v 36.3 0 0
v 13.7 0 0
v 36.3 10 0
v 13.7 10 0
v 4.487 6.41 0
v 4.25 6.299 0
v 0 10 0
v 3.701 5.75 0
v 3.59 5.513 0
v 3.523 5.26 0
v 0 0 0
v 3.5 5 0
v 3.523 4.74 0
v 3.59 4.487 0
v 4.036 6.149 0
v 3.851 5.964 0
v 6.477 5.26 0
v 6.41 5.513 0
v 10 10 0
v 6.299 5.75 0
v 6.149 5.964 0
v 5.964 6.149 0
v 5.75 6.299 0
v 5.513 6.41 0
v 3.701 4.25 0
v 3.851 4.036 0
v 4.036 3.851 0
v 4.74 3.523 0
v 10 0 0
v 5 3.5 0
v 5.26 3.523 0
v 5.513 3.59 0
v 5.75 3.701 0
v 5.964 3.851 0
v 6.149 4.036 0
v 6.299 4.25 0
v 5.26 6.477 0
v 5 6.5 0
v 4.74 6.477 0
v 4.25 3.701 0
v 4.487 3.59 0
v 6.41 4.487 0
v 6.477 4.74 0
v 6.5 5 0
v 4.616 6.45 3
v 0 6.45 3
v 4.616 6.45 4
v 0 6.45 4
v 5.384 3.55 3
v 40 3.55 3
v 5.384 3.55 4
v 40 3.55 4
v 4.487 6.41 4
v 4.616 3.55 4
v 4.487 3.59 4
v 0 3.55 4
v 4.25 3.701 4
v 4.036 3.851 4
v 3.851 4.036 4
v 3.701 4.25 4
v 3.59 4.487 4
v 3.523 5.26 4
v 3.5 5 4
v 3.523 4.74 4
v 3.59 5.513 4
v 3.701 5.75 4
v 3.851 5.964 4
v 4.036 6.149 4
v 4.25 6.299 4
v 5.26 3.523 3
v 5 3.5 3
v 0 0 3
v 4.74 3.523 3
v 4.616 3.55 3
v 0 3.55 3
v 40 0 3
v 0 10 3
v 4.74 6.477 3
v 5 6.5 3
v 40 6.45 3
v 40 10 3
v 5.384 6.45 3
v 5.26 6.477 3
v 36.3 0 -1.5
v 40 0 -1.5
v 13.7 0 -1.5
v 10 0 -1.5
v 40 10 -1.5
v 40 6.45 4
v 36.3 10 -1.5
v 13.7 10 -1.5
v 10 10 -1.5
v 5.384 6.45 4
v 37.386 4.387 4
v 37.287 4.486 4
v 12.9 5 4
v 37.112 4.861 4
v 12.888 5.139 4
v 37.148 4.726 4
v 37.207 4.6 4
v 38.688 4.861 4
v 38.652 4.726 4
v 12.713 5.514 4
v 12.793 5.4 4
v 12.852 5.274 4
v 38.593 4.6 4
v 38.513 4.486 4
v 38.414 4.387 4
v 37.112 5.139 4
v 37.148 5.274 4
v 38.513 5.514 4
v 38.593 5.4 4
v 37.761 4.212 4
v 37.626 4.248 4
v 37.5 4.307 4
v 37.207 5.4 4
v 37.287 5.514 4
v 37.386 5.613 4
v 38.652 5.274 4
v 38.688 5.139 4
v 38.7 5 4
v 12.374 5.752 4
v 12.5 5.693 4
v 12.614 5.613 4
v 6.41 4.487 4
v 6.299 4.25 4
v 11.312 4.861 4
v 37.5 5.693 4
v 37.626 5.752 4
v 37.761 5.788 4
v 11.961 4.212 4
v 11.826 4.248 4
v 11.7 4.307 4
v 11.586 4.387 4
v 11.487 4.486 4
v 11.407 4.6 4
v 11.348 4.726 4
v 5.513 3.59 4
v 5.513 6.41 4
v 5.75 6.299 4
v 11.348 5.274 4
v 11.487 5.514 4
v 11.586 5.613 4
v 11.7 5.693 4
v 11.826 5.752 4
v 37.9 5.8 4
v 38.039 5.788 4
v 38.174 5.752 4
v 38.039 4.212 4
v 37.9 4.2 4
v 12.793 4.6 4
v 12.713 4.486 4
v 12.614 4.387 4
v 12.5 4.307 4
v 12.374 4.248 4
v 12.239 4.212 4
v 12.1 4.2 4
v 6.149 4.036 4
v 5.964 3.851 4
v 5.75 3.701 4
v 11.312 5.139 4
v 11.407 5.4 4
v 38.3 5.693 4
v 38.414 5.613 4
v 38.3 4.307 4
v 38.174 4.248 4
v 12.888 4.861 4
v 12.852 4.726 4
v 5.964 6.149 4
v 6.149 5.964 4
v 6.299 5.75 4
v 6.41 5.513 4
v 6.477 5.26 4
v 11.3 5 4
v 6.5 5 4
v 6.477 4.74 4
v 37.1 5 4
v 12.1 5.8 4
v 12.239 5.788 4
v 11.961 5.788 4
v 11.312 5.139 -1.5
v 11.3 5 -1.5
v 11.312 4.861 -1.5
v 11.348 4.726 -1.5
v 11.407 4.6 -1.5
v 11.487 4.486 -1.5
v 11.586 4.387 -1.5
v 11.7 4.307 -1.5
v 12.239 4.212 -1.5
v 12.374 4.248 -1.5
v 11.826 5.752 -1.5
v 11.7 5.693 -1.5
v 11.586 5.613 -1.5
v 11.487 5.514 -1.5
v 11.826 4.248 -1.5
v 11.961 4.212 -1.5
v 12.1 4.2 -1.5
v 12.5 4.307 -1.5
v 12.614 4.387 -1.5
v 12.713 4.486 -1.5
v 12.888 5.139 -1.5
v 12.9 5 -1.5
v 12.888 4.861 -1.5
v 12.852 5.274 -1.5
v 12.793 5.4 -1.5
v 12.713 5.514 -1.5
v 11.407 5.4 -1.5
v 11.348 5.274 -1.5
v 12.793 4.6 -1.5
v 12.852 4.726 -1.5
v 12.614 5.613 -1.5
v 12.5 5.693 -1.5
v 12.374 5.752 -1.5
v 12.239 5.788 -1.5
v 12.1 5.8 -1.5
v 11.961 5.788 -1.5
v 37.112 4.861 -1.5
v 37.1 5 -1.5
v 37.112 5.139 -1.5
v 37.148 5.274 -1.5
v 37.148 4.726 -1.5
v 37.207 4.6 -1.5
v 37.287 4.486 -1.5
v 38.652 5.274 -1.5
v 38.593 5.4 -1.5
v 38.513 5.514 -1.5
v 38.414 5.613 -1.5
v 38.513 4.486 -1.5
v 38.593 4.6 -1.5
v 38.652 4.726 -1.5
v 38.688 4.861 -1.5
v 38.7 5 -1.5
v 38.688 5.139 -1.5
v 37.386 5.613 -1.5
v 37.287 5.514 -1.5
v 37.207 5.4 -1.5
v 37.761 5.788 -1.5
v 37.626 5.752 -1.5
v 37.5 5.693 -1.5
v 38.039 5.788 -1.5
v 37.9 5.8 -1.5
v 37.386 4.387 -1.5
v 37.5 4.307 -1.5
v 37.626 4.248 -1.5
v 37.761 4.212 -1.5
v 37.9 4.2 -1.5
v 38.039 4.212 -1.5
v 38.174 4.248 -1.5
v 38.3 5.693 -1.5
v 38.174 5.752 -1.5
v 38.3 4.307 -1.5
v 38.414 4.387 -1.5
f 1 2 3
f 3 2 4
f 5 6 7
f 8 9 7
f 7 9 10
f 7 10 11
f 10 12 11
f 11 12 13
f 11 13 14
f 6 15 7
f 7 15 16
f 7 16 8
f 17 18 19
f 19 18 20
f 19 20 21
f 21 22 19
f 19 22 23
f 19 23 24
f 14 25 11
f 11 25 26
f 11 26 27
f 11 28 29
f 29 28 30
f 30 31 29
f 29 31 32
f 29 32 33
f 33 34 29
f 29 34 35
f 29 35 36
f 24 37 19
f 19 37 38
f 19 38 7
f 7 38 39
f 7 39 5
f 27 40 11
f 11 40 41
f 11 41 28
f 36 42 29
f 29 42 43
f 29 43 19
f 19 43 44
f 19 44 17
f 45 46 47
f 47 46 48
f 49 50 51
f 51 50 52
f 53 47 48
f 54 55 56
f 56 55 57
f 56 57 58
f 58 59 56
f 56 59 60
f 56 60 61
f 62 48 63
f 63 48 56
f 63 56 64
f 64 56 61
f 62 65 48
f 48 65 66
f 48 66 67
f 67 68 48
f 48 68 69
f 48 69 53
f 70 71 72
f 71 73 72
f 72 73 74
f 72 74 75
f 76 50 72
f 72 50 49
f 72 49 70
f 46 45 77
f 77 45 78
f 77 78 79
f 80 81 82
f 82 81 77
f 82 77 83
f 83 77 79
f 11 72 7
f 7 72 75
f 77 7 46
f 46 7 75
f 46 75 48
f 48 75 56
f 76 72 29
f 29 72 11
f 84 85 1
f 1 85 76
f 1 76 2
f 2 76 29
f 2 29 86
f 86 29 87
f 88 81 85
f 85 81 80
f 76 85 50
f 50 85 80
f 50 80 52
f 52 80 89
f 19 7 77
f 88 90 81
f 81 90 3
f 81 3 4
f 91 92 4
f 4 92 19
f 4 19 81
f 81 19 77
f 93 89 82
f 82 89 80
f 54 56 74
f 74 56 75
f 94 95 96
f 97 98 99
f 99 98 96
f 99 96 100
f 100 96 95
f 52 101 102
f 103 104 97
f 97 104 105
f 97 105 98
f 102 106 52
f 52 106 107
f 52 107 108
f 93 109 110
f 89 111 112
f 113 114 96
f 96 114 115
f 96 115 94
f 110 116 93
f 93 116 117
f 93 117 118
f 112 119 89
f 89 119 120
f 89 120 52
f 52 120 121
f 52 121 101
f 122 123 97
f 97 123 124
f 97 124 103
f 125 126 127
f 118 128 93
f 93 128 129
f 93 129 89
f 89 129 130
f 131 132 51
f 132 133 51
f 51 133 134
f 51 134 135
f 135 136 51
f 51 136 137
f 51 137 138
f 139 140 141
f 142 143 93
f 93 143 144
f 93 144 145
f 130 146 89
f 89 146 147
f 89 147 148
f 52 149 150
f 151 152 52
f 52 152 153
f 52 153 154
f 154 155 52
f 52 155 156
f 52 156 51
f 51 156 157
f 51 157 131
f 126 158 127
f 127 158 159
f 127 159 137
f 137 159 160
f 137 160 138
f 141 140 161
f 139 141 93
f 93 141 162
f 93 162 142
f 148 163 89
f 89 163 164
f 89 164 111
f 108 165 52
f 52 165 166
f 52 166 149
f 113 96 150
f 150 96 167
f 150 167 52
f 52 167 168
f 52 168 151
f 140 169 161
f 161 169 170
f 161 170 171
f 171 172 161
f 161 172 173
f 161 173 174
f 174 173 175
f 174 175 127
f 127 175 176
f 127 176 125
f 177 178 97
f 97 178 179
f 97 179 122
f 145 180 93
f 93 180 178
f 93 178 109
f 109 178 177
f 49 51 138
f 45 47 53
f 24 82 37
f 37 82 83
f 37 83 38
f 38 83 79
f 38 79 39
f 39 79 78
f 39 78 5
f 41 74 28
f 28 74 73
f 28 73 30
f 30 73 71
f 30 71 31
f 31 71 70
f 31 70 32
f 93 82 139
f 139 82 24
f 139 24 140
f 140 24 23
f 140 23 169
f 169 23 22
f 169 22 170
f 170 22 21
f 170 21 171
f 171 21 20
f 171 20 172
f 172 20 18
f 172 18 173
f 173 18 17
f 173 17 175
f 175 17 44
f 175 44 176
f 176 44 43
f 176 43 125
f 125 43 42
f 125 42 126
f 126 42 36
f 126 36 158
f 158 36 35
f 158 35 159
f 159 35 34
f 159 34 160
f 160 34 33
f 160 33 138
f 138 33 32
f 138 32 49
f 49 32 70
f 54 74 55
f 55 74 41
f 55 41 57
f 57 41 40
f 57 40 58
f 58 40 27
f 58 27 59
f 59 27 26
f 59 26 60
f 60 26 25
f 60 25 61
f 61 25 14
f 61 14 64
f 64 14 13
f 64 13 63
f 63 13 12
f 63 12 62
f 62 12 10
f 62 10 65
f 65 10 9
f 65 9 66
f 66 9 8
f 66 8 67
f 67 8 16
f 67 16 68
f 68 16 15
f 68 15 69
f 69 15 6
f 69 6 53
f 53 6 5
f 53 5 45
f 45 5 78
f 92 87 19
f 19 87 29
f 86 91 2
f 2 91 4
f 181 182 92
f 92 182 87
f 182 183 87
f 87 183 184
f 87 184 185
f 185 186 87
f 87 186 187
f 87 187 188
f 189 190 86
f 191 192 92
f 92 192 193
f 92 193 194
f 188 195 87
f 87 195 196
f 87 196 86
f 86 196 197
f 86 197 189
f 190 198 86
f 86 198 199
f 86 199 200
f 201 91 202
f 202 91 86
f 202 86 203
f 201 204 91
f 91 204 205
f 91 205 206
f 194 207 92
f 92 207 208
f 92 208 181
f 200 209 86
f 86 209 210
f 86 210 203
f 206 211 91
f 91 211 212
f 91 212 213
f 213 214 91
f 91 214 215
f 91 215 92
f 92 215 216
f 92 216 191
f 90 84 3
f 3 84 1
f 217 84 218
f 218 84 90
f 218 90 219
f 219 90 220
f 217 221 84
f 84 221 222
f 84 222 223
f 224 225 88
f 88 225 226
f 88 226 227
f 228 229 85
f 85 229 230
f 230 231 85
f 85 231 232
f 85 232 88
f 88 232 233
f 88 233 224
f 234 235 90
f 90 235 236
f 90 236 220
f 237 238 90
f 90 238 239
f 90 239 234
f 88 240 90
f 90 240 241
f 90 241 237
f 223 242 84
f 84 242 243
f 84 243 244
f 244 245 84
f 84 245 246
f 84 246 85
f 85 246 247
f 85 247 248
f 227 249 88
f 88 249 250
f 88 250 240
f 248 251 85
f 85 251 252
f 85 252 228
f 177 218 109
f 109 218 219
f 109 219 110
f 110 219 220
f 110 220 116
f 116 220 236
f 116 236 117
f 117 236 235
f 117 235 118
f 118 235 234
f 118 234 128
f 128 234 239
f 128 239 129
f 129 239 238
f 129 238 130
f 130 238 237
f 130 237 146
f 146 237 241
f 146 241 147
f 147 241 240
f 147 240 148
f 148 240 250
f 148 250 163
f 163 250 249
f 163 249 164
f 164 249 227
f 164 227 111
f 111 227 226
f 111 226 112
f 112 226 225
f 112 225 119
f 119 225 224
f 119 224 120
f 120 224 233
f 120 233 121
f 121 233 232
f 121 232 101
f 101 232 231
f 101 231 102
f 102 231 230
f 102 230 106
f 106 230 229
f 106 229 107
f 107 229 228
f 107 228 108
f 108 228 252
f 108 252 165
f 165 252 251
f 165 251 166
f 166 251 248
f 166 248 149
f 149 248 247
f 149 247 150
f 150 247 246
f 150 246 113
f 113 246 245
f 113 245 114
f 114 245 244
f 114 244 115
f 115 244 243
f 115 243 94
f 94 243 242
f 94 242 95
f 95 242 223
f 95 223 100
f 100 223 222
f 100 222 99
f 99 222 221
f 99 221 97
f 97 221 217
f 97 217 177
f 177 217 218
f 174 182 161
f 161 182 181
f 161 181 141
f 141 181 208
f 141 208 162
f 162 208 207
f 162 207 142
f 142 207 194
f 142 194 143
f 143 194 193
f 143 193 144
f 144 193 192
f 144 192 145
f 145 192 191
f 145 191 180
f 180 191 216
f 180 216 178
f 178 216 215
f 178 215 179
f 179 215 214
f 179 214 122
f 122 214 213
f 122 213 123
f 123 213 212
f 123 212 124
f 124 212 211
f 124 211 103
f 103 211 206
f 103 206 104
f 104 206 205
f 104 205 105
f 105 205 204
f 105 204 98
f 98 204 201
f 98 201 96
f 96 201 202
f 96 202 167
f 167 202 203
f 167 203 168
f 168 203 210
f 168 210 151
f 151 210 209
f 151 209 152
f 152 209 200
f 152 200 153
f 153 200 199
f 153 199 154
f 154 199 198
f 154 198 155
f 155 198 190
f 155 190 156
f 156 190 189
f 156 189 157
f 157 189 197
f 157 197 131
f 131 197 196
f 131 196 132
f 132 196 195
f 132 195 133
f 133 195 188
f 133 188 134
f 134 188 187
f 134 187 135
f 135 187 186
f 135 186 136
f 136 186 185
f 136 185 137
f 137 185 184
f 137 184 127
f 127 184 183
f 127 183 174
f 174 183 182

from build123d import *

# Parameters (mm, degrees)
ESQUISSE1_W        = 40
ESQUISSE1_H        = 10
MAIN_DEPTH         = 3
ESQUISSE2_W        = 40
ESQUISSE2_H        = 2.9
CENTRALFIX_DEPTH   = 1
ESQUISSE3_R        = 1.5
HOLESFIX_DEPTH     = 5
SKETCH1_W          = 3.7
SKETCH1_H          = 10
FIXSUPPORT_DEPTH   = 1.5
SKETCH2_R          = 0.8
CUT_EXTRUDE1_DEPTH = 6.5


with BuildPart() as part:
    # Esquisse1 → Main (new body)
    with BuildSketch(Plane.XY):
        with Locations((20, 5)):
            Rectangle(ESQUISSE1_W, ESQUISSE1_H)
    extrude(amount=MAIN_DEPTH)

    # Esquisse2 → CentralFix (add)
    with BuildSketch(Plane.XY.offset(3)):
        with Locations((20, 5)):
            Rectangle(ESQUISSE2_W, ESQUISSE2_H)
    extrude(amount=CENTRALFIX_DEPTH)

    # Esquisse3 → HolesFix (cut, through all)
    with BuildSketch(Plane(origin=(0, 0, 0), x_dir=(-1, 0, 0), z_dir=(0, 0, -1))):
        with Locations((-5, 5)):
            Circle(ESQUISSE3_R)
    extrude(amount=-HOLESFIX_DEPTH, mode=Mode.SUBTRACT)

    # Sketch1 → FixSupport (add)
    with BuildSketch(Plane(origin=(0, 0, 0), x_dir=(-1, 0, 0), z_dir=(0, 0, -1))):
        with Locations((-11.85, 5)):
            Rectangle(SKETCH1_W, SKETCH1_H)
        with Locations((-38.15, 5)):
            Rectangle(SKETCH1_W, SKETCH1_H)
    extrude(amount=FIXSUPPORT_DEPTH)

    # Sketch2 → Cut-Extrude1 (cut, through all)
    with BuildSketch(Plane(origin=(0, 0, -1.5), x_dir=(-1, 0, 0), z_dir=(0, 0, -1))):
        with Locations((-37.9, 5)):
            Circle(SKETCH2_R)
        with Locations((-12.1, 5)):
            Circle(SKETCH2_R)
    extrude(amount=-CUT_EXTRUDE1_DEPTH, mode=Mode.SUBTRACT)


solid = part.part
